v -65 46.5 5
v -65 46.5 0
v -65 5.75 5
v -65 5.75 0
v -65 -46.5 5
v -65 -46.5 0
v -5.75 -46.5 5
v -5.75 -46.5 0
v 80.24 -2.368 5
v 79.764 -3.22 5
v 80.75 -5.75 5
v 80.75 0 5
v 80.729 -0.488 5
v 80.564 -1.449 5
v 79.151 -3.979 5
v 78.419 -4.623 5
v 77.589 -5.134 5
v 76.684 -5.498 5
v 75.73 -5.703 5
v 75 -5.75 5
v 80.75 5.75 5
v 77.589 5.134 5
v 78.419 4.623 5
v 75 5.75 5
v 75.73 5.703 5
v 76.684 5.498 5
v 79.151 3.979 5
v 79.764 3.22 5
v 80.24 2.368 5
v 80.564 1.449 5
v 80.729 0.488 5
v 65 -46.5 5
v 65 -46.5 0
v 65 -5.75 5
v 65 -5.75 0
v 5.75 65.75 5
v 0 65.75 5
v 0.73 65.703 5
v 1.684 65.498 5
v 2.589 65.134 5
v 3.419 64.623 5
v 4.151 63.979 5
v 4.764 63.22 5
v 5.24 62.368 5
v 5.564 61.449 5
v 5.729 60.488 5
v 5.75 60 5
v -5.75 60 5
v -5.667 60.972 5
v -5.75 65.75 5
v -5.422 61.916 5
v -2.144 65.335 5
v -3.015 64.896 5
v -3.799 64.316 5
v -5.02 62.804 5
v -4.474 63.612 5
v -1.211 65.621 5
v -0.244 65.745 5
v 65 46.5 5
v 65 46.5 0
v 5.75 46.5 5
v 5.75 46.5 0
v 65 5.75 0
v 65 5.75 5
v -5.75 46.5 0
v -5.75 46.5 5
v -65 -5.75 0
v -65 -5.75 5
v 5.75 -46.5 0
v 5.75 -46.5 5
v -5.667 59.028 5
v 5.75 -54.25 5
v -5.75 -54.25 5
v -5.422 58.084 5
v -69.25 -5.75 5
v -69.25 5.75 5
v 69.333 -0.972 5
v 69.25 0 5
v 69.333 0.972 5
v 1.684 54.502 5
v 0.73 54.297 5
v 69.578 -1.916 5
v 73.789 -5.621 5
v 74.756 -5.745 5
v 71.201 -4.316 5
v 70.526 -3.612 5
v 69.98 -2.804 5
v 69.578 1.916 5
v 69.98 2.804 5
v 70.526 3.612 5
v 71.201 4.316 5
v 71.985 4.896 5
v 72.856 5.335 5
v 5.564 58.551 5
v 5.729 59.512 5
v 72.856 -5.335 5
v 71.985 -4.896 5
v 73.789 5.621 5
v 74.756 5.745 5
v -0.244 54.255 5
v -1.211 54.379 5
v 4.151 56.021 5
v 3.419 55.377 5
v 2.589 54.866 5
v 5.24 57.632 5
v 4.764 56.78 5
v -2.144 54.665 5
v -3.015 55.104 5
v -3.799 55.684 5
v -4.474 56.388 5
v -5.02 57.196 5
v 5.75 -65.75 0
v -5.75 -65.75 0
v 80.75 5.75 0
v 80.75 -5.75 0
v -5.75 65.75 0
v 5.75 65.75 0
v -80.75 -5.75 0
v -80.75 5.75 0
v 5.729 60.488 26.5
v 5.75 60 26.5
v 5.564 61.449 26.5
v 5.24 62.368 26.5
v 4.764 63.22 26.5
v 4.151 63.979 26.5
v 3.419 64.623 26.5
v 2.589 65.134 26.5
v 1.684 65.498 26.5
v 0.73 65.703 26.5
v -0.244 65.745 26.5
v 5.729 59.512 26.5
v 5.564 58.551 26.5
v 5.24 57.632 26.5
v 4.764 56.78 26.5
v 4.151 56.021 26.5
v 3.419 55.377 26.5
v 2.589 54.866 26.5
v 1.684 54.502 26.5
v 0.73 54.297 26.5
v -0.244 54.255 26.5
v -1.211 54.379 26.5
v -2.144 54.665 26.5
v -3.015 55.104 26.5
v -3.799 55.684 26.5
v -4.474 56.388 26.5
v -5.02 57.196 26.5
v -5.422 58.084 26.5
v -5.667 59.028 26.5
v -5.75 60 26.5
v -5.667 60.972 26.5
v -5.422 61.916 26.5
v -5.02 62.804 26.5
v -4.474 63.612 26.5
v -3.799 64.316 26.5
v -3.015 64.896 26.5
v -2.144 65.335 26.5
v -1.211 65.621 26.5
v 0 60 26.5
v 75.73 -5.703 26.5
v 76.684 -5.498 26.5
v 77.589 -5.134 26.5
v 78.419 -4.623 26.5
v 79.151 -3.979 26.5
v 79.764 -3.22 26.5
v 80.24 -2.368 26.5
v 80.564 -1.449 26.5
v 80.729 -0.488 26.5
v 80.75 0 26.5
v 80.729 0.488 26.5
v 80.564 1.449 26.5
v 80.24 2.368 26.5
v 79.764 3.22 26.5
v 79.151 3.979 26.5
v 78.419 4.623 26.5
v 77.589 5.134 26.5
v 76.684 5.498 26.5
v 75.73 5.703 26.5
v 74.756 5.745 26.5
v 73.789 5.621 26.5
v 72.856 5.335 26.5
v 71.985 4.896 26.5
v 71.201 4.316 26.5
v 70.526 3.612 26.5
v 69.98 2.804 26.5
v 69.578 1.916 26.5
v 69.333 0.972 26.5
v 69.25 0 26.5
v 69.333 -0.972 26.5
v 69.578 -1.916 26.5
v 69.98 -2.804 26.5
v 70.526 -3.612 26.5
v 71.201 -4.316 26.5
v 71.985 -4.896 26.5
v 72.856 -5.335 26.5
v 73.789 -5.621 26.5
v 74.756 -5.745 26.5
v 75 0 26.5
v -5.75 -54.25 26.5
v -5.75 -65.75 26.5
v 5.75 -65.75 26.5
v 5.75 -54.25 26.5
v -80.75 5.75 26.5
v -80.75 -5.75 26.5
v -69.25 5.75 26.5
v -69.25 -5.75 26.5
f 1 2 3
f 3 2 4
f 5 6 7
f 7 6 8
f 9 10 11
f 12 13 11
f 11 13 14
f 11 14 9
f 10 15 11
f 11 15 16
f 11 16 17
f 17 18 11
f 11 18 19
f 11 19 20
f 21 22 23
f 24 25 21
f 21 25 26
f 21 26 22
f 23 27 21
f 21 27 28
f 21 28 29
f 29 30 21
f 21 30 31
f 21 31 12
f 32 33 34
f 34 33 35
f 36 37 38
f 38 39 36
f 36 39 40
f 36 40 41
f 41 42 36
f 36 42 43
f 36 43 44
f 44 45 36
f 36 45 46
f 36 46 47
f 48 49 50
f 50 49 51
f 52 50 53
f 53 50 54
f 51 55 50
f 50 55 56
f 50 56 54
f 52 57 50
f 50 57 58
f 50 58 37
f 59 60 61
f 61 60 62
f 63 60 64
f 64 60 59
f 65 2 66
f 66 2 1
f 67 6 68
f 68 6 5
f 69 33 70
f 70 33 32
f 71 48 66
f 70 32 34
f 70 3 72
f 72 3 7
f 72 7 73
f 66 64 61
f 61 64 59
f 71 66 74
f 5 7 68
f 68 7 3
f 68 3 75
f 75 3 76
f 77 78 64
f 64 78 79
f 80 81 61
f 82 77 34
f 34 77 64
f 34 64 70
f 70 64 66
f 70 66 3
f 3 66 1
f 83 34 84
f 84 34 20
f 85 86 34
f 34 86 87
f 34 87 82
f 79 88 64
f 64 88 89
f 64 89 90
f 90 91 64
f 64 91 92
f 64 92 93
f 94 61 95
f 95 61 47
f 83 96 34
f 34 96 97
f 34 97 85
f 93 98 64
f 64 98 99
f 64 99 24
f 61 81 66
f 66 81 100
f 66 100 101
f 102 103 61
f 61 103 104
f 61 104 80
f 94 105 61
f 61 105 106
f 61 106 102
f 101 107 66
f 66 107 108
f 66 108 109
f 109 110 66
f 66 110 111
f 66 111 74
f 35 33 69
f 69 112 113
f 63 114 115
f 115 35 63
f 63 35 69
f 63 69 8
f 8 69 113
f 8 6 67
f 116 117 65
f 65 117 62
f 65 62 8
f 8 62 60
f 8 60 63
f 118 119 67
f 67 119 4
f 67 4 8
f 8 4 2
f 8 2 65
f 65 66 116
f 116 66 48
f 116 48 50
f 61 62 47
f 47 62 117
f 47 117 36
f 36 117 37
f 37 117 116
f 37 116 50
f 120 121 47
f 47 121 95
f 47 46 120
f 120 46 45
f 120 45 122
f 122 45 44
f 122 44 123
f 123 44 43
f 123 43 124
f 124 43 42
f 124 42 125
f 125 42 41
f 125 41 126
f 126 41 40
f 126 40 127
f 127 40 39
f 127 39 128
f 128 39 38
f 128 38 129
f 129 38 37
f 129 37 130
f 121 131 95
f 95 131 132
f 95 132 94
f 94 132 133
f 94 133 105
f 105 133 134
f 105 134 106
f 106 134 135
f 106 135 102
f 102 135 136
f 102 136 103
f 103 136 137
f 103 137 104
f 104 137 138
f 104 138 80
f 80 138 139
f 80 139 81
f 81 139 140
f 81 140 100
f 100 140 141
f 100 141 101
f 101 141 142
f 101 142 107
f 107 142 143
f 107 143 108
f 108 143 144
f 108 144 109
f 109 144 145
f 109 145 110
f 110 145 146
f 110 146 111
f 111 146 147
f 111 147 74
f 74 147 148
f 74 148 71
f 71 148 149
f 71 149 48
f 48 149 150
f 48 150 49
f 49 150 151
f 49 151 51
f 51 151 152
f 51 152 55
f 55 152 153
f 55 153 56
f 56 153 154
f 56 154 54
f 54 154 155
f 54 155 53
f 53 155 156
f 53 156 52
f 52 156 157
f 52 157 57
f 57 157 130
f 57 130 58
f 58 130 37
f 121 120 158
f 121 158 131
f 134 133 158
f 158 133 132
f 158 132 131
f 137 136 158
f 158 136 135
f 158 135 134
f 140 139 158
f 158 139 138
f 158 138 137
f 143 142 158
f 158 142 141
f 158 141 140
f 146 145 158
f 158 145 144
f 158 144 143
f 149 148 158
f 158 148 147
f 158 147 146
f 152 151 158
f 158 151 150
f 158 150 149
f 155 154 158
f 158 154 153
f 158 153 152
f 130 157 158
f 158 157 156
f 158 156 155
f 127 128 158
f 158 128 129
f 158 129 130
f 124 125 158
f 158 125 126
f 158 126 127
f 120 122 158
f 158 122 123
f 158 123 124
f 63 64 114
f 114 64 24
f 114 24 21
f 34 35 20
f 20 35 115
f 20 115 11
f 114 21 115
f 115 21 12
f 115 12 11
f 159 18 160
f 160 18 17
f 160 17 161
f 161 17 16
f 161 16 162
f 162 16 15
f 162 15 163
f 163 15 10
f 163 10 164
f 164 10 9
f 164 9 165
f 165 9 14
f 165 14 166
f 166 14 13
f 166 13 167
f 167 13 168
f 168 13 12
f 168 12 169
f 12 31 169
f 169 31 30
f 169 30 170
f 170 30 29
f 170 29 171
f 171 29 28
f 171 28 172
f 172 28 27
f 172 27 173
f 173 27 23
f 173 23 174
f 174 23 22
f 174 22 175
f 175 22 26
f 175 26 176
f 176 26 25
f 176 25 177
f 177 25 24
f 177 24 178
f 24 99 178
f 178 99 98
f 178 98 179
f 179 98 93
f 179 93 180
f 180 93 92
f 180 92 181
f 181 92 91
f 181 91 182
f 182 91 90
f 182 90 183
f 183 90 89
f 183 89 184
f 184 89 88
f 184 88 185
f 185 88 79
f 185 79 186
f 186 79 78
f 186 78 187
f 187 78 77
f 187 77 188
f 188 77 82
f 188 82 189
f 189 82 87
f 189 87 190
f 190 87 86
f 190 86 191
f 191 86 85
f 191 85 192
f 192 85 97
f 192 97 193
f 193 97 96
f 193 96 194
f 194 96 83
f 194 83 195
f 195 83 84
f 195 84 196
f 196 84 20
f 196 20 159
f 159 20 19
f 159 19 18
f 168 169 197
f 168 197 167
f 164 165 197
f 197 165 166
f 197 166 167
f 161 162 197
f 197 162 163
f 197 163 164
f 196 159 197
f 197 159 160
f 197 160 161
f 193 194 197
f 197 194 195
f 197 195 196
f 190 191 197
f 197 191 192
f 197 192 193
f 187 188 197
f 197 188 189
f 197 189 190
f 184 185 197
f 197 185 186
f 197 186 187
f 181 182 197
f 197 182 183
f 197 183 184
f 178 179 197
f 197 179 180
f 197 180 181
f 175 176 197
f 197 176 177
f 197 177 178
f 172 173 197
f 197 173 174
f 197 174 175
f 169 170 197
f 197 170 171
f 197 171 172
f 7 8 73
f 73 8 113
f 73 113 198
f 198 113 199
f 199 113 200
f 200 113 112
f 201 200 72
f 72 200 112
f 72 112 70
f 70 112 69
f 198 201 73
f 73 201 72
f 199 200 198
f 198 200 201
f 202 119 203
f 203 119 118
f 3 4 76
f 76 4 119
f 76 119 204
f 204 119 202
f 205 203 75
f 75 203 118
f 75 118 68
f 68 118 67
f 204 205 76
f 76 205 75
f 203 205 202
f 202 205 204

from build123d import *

# Parameters (mm, degrees)
SKETCH1_W             = 130
SKETCH1_H             = 93
BOSS_EXTRUDE1_DEPTH   = 5
SKETCH2_R             = 5.75
BOSS_EXTRUDE2_DEPTH   = 21.5
BOSS_EXTRUDE2_2_DEPTH = 21.5
SKETCH2_W             = 11.5
SKETCH2_H             = 11.5
BOSS_EXTRUDE2_3_DEPTH = 21.5
BOSS_EXTRUDE2_4_DEPTH = 21.5
SKETCH3_W             = 11.5
SKETCH3_H             = 19.25
SKETCH3_W_2           = 15.75
SKETCH3_H_2           = 11.5
BOSS_EXTRUDE3_DEPTH   = 5


with BuildPart() as part:
    # Sketch1 → Boss-Extrude1 (new body)
    with BuildSketch(Plane.XY):
        Rectangle(SKETCH1_W, SKETCH1_H)
    extrude(amount=BOSS_EXTRUDE1_DEPTH)



with BuildPart() as body_2:
    # Sketch2 → Boss-Extrude2 (new body)
    with BuildSketch(Plane.XY.offset(5)):
        with Locations((0, 60)):
            Circle(SKETCH2_R)
    extrude(amount=BOSS_EXTRUDE2_DEPTH)


with BuildPart() as body_3:
    # Sketch2 → Boss-Extrude2 2 (new body)
    with BuildSketch(Plane.XY.offset(5)):
        with Locations((75, 0)):
            Circle(SKETCH2_R)
    extrude(amount=BOSS_EXTRUDE2_2_DEPTH)


with BuildPart() as body_4:
    # Sketch2 → Boss-Extrude2 3 (new body)
    with BuildSketch(Plane.XY.offset(5)):
        with Locations((-75, 0)):
            Rectangle(SKETCH2_W, SKETCH2_H)
    extrude(amount=BOSS_EXTRUDE2_3_DEPTH)


with BuildPart() as body_5:
    # Sketch2 → Boss-Extrude2 4 (new body)
    with BuildSketch(Plane.XY.offset(5)):
        with Locations((0, -60)):
            Rectangle(SKETCH2_W, SKETCH2_H)
    extrude(amount=BOSS_EXTRUDE2_4_DEPTH)


with BuildPart() as part_1:
    add(part.part)

    add(body_2.part)  # Boss-Extrude3 merges body 2

    add(body_3.part)  # Boss-Extrude3 merges body 3

    add(body_4.part)  # Boss-Extrude3 merges body 4

    add(body_5.part)  # Boss-Extrude3 merges body 5
    # Sketch3 → Boss-Extrude3 (add)
    with BuildSketch(Plane(origin=(0, 0, 0), x_dir=(-1, 0, 0), z_dir=(0, 0, -1))):
        with Locations((0, 56.125)):
            Rectangle(SKETCH3_W, SKETCH3_H)
        with Locations((-72.875, 0)):
            Rectangle(SKETCH3_W_2, SKETCH3_H_2)
        with Locations((0, -56.125)):
            Rectangle(SKETCH3_W, SKETCH3_H)
        with Locations((72.875, 0)):
            Rectangle(SKETCH3_W_2, SKETCH3_H_2)
    extrude(amount=-BOSS_EXTRUDE3_DEPTH)


solid = part_1.part
